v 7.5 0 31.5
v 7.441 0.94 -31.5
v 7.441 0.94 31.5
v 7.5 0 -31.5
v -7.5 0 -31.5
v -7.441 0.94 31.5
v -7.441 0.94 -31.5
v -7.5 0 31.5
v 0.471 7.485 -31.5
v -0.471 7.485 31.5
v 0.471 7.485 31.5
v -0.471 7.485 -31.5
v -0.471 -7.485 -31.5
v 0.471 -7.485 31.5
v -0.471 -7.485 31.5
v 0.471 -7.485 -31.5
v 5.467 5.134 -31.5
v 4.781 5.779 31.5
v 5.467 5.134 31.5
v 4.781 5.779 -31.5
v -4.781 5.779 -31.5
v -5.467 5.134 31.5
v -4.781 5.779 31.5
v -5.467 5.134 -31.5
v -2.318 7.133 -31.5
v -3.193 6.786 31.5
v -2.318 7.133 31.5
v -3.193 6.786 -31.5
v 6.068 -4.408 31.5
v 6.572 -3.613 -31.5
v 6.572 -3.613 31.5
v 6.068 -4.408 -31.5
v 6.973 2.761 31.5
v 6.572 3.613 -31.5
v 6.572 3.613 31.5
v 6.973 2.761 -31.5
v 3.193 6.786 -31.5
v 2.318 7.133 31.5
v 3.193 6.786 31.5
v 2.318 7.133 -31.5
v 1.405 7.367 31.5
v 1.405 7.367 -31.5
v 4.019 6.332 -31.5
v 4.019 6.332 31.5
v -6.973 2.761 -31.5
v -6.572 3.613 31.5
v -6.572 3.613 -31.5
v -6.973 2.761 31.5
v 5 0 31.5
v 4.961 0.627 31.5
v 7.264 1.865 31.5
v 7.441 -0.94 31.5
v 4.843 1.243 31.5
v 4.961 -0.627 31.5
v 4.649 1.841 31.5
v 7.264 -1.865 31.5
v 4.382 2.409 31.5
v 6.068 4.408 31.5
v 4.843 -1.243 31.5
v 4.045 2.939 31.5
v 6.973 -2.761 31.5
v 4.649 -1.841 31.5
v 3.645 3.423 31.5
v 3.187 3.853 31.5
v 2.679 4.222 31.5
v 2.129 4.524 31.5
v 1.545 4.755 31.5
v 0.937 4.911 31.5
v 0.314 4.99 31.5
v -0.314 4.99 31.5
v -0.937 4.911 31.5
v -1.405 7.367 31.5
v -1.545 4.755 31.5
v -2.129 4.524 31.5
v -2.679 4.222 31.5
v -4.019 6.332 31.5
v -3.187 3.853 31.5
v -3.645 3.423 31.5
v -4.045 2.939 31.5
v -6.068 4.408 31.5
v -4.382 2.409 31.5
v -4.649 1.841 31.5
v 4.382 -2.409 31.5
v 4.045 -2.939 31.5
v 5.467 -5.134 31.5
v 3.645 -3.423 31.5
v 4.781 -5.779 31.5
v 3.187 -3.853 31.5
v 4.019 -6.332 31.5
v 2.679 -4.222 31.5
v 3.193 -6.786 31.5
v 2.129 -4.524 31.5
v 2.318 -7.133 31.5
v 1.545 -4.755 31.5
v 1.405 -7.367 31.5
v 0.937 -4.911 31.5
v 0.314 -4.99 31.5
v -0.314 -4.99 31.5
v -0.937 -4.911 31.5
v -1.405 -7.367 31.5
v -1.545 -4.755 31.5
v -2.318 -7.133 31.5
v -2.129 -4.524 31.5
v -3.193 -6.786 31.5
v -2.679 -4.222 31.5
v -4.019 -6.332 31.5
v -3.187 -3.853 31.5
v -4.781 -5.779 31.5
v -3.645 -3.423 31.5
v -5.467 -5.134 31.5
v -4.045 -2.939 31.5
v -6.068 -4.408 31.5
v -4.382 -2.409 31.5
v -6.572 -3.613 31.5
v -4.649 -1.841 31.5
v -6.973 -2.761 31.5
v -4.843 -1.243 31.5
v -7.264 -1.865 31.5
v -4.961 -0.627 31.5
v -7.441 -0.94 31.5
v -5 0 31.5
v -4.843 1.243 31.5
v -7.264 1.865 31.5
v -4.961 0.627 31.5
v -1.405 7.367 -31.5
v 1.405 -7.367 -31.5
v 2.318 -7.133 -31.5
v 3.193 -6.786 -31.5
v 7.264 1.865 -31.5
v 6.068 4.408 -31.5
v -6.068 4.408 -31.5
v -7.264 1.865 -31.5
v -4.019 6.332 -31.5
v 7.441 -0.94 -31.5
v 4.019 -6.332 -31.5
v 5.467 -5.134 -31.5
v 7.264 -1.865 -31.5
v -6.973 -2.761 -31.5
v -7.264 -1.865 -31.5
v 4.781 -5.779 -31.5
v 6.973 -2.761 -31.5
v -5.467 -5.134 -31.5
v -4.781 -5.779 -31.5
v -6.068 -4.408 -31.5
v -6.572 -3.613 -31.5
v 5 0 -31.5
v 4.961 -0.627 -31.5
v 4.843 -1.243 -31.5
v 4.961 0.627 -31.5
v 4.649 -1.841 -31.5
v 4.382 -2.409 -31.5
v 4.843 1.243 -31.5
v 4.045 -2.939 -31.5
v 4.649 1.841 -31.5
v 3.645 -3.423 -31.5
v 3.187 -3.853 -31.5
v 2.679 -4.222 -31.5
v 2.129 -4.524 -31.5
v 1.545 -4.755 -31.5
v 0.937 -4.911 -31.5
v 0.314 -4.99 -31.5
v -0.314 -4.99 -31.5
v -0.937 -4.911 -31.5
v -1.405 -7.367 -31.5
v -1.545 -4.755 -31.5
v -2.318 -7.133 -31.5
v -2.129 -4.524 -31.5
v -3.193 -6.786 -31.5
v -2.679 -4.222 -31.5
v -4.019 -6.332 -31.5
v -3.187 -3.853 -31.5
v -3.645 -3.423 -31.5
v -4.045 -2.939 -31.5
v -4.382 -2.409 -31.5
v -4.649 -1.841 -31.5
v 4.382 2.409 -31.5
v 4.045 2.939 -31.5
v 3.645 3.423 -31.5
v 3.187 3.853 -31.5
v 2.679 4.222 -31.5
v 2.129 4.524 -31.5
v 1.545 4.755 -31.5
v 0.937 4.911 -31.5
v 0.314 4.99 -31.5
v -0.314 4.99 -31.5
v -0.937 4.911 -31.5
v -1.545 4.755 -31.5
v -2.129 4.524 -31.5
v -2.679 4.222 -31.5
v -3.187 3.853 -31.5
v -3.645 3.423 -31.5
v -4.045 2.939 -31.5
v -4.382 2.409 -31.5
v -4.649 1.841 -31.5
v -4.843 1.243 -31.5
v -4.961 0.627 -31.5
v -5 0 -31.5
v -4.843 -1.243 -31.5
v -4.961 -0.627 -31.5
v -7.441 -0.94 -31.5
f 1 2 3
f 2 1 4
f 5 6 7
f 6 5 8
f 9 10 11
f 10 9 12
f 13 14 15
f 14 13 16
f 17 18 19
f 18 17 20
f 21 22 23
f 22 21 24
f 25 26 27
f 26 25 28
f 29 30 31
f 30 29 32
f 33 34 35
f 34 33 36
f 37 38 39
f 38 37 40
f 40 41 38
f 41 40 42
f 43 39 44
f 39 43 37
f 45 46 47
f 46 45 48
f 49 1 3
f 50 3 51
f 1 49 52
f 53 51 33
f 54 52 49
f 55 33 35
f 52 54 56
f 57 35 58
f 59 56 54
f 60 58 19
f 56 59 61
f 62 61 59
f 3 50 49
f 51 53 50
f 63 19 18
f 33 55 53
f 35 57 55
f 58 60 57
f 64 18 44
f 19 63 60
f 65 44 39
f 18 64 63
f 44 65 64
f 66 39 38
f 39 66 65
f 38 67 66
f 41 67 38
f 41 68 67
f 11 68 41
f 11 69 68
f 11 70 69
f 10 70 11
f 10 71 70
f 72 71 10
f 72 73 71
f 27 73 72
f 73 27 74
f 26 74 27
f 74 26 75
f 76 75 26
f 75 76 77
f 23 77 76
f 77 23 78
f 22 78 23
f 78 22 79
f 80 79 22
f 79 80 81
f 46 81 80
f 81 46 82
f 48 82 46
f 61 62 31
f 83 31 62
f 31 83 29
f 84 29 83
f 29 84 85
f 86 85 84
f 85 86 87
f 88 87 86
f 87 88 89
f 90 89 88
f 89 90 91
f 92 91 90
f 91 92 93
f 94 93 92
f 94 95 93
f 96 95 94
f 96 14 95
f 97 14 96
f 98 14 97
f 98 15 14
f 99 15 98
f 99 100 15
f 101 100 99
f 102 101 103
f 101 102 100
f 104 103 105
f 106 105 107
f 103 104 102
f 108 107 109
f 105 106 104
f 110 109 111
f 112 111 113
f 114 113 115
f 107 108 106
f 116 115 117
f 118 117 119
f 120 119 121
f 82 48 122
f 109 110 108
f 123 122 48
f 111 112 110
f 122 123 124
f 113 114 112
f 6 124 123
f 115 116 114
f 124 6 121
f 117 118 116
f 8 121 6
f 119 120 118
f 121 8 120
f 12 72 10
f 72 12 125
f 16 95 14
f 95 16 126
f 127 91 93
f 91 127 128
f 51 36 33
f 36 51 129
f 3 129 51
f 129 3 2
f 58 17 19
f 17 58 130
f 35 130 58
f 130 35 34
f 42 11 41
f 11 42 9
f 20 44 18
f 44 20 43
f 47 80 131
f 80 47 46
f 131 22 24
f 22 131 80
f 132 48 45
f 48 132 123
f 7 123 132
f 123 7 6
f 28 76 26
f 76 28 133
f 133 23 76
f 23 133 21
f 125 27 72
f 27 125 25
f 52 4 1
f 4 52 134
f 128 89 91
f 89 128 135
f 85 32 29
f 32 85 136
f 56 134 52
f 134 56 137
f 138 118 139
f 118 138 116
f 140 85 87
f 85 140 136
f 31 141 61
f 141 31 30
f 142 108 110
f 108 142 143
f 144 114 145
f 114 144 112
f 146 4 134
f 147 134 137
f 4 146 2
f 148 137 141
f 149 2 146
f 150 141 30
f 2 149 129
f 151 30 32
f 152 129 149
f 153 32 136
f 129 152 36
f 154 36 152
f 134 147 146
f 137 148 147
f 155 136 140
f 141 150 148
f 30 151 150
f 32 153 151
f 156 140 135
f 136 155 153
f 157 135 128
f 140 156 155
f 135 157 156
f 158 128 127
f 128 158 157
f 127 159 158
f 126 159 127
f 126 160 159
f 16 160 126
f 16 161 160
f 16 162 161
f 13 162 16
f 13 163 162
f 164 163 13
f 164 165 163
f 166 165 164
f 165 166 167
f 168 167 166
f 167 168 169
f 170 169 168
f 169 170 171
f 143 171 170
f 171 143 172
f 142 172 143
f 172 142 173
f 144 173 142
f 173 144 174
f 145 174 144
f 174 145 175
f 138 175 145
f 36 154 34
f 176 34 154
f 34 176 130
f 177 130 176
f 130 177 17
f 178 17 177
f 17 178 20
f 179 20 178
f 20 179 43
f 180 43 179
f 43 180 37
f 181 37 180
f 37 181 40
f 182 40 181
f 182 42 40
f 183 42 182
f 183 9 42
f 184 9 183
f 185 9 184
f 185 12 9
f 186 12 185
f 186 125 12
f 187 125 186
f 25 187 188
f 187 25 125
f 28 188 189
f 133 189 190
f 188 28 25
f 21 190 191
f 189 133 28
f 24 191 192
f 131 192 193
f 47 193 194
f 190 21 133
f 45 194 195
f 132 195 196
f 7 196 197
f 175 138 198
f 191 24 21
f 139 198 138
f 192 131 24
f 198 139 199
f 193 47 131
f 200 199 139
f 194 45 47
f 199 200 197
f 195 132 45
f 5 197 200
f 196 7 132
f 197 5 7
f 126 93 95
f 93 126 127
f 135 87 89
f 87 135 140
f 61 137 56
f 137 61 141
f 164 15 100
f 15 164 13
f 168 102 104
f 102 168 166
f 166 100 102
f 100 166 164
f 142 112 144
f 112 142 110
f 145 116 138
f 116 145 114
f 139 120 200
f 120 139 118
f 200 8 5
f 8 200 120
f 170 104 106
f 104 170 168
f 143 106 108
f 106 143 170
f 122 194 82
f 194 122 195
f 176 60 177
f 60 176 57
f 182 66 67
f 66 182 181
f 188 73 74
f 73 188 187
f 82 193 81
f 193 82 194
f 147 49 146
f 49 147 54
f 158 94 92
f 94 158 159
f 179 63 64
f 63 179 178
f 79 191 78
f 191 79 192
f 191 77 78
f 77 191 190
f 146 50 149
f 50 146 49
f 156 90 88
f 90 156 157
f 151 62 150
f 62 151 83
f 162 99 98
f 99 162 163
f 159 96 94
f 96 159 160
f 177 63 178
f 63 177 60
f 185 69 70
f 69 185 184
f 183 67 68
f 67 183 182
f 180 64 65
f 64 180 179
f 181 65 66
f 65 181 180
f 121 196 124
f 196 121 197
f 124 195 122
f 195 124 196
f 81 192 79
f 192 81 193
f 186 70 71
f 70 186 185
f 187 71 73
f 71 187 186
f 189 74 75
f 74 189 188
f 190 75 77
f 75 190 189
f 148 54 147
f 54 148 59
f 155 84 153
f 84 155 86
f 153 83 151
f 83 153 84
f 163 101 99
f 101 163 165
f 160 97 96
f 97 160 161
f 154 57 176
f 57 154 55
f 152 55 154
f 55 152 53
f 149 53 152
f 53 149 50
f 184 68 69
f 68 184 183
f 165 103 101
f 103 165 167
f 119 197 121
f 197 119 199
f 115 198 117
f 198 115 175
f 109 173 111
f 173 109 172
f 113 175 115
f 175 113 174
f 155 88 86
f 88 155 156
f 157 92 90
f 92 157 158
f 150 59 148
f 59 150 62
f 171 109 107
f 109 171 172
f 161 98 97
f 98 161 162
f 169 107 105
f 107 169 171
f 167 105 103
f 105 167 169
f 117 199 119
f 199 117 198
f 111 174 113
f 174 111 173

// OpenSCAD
$fn = 50;


difference() {
	union() {
		translate(v = [0, 0, -31.5000000000]) {
			cylinder(h = 63, r = 7.5000000000);
		}
	}
	union() {
		translate(v = [0, 0, -100.0000000000]) {
			cylinder(h = 200, r = 5.0000000000);
		}
	}
}
